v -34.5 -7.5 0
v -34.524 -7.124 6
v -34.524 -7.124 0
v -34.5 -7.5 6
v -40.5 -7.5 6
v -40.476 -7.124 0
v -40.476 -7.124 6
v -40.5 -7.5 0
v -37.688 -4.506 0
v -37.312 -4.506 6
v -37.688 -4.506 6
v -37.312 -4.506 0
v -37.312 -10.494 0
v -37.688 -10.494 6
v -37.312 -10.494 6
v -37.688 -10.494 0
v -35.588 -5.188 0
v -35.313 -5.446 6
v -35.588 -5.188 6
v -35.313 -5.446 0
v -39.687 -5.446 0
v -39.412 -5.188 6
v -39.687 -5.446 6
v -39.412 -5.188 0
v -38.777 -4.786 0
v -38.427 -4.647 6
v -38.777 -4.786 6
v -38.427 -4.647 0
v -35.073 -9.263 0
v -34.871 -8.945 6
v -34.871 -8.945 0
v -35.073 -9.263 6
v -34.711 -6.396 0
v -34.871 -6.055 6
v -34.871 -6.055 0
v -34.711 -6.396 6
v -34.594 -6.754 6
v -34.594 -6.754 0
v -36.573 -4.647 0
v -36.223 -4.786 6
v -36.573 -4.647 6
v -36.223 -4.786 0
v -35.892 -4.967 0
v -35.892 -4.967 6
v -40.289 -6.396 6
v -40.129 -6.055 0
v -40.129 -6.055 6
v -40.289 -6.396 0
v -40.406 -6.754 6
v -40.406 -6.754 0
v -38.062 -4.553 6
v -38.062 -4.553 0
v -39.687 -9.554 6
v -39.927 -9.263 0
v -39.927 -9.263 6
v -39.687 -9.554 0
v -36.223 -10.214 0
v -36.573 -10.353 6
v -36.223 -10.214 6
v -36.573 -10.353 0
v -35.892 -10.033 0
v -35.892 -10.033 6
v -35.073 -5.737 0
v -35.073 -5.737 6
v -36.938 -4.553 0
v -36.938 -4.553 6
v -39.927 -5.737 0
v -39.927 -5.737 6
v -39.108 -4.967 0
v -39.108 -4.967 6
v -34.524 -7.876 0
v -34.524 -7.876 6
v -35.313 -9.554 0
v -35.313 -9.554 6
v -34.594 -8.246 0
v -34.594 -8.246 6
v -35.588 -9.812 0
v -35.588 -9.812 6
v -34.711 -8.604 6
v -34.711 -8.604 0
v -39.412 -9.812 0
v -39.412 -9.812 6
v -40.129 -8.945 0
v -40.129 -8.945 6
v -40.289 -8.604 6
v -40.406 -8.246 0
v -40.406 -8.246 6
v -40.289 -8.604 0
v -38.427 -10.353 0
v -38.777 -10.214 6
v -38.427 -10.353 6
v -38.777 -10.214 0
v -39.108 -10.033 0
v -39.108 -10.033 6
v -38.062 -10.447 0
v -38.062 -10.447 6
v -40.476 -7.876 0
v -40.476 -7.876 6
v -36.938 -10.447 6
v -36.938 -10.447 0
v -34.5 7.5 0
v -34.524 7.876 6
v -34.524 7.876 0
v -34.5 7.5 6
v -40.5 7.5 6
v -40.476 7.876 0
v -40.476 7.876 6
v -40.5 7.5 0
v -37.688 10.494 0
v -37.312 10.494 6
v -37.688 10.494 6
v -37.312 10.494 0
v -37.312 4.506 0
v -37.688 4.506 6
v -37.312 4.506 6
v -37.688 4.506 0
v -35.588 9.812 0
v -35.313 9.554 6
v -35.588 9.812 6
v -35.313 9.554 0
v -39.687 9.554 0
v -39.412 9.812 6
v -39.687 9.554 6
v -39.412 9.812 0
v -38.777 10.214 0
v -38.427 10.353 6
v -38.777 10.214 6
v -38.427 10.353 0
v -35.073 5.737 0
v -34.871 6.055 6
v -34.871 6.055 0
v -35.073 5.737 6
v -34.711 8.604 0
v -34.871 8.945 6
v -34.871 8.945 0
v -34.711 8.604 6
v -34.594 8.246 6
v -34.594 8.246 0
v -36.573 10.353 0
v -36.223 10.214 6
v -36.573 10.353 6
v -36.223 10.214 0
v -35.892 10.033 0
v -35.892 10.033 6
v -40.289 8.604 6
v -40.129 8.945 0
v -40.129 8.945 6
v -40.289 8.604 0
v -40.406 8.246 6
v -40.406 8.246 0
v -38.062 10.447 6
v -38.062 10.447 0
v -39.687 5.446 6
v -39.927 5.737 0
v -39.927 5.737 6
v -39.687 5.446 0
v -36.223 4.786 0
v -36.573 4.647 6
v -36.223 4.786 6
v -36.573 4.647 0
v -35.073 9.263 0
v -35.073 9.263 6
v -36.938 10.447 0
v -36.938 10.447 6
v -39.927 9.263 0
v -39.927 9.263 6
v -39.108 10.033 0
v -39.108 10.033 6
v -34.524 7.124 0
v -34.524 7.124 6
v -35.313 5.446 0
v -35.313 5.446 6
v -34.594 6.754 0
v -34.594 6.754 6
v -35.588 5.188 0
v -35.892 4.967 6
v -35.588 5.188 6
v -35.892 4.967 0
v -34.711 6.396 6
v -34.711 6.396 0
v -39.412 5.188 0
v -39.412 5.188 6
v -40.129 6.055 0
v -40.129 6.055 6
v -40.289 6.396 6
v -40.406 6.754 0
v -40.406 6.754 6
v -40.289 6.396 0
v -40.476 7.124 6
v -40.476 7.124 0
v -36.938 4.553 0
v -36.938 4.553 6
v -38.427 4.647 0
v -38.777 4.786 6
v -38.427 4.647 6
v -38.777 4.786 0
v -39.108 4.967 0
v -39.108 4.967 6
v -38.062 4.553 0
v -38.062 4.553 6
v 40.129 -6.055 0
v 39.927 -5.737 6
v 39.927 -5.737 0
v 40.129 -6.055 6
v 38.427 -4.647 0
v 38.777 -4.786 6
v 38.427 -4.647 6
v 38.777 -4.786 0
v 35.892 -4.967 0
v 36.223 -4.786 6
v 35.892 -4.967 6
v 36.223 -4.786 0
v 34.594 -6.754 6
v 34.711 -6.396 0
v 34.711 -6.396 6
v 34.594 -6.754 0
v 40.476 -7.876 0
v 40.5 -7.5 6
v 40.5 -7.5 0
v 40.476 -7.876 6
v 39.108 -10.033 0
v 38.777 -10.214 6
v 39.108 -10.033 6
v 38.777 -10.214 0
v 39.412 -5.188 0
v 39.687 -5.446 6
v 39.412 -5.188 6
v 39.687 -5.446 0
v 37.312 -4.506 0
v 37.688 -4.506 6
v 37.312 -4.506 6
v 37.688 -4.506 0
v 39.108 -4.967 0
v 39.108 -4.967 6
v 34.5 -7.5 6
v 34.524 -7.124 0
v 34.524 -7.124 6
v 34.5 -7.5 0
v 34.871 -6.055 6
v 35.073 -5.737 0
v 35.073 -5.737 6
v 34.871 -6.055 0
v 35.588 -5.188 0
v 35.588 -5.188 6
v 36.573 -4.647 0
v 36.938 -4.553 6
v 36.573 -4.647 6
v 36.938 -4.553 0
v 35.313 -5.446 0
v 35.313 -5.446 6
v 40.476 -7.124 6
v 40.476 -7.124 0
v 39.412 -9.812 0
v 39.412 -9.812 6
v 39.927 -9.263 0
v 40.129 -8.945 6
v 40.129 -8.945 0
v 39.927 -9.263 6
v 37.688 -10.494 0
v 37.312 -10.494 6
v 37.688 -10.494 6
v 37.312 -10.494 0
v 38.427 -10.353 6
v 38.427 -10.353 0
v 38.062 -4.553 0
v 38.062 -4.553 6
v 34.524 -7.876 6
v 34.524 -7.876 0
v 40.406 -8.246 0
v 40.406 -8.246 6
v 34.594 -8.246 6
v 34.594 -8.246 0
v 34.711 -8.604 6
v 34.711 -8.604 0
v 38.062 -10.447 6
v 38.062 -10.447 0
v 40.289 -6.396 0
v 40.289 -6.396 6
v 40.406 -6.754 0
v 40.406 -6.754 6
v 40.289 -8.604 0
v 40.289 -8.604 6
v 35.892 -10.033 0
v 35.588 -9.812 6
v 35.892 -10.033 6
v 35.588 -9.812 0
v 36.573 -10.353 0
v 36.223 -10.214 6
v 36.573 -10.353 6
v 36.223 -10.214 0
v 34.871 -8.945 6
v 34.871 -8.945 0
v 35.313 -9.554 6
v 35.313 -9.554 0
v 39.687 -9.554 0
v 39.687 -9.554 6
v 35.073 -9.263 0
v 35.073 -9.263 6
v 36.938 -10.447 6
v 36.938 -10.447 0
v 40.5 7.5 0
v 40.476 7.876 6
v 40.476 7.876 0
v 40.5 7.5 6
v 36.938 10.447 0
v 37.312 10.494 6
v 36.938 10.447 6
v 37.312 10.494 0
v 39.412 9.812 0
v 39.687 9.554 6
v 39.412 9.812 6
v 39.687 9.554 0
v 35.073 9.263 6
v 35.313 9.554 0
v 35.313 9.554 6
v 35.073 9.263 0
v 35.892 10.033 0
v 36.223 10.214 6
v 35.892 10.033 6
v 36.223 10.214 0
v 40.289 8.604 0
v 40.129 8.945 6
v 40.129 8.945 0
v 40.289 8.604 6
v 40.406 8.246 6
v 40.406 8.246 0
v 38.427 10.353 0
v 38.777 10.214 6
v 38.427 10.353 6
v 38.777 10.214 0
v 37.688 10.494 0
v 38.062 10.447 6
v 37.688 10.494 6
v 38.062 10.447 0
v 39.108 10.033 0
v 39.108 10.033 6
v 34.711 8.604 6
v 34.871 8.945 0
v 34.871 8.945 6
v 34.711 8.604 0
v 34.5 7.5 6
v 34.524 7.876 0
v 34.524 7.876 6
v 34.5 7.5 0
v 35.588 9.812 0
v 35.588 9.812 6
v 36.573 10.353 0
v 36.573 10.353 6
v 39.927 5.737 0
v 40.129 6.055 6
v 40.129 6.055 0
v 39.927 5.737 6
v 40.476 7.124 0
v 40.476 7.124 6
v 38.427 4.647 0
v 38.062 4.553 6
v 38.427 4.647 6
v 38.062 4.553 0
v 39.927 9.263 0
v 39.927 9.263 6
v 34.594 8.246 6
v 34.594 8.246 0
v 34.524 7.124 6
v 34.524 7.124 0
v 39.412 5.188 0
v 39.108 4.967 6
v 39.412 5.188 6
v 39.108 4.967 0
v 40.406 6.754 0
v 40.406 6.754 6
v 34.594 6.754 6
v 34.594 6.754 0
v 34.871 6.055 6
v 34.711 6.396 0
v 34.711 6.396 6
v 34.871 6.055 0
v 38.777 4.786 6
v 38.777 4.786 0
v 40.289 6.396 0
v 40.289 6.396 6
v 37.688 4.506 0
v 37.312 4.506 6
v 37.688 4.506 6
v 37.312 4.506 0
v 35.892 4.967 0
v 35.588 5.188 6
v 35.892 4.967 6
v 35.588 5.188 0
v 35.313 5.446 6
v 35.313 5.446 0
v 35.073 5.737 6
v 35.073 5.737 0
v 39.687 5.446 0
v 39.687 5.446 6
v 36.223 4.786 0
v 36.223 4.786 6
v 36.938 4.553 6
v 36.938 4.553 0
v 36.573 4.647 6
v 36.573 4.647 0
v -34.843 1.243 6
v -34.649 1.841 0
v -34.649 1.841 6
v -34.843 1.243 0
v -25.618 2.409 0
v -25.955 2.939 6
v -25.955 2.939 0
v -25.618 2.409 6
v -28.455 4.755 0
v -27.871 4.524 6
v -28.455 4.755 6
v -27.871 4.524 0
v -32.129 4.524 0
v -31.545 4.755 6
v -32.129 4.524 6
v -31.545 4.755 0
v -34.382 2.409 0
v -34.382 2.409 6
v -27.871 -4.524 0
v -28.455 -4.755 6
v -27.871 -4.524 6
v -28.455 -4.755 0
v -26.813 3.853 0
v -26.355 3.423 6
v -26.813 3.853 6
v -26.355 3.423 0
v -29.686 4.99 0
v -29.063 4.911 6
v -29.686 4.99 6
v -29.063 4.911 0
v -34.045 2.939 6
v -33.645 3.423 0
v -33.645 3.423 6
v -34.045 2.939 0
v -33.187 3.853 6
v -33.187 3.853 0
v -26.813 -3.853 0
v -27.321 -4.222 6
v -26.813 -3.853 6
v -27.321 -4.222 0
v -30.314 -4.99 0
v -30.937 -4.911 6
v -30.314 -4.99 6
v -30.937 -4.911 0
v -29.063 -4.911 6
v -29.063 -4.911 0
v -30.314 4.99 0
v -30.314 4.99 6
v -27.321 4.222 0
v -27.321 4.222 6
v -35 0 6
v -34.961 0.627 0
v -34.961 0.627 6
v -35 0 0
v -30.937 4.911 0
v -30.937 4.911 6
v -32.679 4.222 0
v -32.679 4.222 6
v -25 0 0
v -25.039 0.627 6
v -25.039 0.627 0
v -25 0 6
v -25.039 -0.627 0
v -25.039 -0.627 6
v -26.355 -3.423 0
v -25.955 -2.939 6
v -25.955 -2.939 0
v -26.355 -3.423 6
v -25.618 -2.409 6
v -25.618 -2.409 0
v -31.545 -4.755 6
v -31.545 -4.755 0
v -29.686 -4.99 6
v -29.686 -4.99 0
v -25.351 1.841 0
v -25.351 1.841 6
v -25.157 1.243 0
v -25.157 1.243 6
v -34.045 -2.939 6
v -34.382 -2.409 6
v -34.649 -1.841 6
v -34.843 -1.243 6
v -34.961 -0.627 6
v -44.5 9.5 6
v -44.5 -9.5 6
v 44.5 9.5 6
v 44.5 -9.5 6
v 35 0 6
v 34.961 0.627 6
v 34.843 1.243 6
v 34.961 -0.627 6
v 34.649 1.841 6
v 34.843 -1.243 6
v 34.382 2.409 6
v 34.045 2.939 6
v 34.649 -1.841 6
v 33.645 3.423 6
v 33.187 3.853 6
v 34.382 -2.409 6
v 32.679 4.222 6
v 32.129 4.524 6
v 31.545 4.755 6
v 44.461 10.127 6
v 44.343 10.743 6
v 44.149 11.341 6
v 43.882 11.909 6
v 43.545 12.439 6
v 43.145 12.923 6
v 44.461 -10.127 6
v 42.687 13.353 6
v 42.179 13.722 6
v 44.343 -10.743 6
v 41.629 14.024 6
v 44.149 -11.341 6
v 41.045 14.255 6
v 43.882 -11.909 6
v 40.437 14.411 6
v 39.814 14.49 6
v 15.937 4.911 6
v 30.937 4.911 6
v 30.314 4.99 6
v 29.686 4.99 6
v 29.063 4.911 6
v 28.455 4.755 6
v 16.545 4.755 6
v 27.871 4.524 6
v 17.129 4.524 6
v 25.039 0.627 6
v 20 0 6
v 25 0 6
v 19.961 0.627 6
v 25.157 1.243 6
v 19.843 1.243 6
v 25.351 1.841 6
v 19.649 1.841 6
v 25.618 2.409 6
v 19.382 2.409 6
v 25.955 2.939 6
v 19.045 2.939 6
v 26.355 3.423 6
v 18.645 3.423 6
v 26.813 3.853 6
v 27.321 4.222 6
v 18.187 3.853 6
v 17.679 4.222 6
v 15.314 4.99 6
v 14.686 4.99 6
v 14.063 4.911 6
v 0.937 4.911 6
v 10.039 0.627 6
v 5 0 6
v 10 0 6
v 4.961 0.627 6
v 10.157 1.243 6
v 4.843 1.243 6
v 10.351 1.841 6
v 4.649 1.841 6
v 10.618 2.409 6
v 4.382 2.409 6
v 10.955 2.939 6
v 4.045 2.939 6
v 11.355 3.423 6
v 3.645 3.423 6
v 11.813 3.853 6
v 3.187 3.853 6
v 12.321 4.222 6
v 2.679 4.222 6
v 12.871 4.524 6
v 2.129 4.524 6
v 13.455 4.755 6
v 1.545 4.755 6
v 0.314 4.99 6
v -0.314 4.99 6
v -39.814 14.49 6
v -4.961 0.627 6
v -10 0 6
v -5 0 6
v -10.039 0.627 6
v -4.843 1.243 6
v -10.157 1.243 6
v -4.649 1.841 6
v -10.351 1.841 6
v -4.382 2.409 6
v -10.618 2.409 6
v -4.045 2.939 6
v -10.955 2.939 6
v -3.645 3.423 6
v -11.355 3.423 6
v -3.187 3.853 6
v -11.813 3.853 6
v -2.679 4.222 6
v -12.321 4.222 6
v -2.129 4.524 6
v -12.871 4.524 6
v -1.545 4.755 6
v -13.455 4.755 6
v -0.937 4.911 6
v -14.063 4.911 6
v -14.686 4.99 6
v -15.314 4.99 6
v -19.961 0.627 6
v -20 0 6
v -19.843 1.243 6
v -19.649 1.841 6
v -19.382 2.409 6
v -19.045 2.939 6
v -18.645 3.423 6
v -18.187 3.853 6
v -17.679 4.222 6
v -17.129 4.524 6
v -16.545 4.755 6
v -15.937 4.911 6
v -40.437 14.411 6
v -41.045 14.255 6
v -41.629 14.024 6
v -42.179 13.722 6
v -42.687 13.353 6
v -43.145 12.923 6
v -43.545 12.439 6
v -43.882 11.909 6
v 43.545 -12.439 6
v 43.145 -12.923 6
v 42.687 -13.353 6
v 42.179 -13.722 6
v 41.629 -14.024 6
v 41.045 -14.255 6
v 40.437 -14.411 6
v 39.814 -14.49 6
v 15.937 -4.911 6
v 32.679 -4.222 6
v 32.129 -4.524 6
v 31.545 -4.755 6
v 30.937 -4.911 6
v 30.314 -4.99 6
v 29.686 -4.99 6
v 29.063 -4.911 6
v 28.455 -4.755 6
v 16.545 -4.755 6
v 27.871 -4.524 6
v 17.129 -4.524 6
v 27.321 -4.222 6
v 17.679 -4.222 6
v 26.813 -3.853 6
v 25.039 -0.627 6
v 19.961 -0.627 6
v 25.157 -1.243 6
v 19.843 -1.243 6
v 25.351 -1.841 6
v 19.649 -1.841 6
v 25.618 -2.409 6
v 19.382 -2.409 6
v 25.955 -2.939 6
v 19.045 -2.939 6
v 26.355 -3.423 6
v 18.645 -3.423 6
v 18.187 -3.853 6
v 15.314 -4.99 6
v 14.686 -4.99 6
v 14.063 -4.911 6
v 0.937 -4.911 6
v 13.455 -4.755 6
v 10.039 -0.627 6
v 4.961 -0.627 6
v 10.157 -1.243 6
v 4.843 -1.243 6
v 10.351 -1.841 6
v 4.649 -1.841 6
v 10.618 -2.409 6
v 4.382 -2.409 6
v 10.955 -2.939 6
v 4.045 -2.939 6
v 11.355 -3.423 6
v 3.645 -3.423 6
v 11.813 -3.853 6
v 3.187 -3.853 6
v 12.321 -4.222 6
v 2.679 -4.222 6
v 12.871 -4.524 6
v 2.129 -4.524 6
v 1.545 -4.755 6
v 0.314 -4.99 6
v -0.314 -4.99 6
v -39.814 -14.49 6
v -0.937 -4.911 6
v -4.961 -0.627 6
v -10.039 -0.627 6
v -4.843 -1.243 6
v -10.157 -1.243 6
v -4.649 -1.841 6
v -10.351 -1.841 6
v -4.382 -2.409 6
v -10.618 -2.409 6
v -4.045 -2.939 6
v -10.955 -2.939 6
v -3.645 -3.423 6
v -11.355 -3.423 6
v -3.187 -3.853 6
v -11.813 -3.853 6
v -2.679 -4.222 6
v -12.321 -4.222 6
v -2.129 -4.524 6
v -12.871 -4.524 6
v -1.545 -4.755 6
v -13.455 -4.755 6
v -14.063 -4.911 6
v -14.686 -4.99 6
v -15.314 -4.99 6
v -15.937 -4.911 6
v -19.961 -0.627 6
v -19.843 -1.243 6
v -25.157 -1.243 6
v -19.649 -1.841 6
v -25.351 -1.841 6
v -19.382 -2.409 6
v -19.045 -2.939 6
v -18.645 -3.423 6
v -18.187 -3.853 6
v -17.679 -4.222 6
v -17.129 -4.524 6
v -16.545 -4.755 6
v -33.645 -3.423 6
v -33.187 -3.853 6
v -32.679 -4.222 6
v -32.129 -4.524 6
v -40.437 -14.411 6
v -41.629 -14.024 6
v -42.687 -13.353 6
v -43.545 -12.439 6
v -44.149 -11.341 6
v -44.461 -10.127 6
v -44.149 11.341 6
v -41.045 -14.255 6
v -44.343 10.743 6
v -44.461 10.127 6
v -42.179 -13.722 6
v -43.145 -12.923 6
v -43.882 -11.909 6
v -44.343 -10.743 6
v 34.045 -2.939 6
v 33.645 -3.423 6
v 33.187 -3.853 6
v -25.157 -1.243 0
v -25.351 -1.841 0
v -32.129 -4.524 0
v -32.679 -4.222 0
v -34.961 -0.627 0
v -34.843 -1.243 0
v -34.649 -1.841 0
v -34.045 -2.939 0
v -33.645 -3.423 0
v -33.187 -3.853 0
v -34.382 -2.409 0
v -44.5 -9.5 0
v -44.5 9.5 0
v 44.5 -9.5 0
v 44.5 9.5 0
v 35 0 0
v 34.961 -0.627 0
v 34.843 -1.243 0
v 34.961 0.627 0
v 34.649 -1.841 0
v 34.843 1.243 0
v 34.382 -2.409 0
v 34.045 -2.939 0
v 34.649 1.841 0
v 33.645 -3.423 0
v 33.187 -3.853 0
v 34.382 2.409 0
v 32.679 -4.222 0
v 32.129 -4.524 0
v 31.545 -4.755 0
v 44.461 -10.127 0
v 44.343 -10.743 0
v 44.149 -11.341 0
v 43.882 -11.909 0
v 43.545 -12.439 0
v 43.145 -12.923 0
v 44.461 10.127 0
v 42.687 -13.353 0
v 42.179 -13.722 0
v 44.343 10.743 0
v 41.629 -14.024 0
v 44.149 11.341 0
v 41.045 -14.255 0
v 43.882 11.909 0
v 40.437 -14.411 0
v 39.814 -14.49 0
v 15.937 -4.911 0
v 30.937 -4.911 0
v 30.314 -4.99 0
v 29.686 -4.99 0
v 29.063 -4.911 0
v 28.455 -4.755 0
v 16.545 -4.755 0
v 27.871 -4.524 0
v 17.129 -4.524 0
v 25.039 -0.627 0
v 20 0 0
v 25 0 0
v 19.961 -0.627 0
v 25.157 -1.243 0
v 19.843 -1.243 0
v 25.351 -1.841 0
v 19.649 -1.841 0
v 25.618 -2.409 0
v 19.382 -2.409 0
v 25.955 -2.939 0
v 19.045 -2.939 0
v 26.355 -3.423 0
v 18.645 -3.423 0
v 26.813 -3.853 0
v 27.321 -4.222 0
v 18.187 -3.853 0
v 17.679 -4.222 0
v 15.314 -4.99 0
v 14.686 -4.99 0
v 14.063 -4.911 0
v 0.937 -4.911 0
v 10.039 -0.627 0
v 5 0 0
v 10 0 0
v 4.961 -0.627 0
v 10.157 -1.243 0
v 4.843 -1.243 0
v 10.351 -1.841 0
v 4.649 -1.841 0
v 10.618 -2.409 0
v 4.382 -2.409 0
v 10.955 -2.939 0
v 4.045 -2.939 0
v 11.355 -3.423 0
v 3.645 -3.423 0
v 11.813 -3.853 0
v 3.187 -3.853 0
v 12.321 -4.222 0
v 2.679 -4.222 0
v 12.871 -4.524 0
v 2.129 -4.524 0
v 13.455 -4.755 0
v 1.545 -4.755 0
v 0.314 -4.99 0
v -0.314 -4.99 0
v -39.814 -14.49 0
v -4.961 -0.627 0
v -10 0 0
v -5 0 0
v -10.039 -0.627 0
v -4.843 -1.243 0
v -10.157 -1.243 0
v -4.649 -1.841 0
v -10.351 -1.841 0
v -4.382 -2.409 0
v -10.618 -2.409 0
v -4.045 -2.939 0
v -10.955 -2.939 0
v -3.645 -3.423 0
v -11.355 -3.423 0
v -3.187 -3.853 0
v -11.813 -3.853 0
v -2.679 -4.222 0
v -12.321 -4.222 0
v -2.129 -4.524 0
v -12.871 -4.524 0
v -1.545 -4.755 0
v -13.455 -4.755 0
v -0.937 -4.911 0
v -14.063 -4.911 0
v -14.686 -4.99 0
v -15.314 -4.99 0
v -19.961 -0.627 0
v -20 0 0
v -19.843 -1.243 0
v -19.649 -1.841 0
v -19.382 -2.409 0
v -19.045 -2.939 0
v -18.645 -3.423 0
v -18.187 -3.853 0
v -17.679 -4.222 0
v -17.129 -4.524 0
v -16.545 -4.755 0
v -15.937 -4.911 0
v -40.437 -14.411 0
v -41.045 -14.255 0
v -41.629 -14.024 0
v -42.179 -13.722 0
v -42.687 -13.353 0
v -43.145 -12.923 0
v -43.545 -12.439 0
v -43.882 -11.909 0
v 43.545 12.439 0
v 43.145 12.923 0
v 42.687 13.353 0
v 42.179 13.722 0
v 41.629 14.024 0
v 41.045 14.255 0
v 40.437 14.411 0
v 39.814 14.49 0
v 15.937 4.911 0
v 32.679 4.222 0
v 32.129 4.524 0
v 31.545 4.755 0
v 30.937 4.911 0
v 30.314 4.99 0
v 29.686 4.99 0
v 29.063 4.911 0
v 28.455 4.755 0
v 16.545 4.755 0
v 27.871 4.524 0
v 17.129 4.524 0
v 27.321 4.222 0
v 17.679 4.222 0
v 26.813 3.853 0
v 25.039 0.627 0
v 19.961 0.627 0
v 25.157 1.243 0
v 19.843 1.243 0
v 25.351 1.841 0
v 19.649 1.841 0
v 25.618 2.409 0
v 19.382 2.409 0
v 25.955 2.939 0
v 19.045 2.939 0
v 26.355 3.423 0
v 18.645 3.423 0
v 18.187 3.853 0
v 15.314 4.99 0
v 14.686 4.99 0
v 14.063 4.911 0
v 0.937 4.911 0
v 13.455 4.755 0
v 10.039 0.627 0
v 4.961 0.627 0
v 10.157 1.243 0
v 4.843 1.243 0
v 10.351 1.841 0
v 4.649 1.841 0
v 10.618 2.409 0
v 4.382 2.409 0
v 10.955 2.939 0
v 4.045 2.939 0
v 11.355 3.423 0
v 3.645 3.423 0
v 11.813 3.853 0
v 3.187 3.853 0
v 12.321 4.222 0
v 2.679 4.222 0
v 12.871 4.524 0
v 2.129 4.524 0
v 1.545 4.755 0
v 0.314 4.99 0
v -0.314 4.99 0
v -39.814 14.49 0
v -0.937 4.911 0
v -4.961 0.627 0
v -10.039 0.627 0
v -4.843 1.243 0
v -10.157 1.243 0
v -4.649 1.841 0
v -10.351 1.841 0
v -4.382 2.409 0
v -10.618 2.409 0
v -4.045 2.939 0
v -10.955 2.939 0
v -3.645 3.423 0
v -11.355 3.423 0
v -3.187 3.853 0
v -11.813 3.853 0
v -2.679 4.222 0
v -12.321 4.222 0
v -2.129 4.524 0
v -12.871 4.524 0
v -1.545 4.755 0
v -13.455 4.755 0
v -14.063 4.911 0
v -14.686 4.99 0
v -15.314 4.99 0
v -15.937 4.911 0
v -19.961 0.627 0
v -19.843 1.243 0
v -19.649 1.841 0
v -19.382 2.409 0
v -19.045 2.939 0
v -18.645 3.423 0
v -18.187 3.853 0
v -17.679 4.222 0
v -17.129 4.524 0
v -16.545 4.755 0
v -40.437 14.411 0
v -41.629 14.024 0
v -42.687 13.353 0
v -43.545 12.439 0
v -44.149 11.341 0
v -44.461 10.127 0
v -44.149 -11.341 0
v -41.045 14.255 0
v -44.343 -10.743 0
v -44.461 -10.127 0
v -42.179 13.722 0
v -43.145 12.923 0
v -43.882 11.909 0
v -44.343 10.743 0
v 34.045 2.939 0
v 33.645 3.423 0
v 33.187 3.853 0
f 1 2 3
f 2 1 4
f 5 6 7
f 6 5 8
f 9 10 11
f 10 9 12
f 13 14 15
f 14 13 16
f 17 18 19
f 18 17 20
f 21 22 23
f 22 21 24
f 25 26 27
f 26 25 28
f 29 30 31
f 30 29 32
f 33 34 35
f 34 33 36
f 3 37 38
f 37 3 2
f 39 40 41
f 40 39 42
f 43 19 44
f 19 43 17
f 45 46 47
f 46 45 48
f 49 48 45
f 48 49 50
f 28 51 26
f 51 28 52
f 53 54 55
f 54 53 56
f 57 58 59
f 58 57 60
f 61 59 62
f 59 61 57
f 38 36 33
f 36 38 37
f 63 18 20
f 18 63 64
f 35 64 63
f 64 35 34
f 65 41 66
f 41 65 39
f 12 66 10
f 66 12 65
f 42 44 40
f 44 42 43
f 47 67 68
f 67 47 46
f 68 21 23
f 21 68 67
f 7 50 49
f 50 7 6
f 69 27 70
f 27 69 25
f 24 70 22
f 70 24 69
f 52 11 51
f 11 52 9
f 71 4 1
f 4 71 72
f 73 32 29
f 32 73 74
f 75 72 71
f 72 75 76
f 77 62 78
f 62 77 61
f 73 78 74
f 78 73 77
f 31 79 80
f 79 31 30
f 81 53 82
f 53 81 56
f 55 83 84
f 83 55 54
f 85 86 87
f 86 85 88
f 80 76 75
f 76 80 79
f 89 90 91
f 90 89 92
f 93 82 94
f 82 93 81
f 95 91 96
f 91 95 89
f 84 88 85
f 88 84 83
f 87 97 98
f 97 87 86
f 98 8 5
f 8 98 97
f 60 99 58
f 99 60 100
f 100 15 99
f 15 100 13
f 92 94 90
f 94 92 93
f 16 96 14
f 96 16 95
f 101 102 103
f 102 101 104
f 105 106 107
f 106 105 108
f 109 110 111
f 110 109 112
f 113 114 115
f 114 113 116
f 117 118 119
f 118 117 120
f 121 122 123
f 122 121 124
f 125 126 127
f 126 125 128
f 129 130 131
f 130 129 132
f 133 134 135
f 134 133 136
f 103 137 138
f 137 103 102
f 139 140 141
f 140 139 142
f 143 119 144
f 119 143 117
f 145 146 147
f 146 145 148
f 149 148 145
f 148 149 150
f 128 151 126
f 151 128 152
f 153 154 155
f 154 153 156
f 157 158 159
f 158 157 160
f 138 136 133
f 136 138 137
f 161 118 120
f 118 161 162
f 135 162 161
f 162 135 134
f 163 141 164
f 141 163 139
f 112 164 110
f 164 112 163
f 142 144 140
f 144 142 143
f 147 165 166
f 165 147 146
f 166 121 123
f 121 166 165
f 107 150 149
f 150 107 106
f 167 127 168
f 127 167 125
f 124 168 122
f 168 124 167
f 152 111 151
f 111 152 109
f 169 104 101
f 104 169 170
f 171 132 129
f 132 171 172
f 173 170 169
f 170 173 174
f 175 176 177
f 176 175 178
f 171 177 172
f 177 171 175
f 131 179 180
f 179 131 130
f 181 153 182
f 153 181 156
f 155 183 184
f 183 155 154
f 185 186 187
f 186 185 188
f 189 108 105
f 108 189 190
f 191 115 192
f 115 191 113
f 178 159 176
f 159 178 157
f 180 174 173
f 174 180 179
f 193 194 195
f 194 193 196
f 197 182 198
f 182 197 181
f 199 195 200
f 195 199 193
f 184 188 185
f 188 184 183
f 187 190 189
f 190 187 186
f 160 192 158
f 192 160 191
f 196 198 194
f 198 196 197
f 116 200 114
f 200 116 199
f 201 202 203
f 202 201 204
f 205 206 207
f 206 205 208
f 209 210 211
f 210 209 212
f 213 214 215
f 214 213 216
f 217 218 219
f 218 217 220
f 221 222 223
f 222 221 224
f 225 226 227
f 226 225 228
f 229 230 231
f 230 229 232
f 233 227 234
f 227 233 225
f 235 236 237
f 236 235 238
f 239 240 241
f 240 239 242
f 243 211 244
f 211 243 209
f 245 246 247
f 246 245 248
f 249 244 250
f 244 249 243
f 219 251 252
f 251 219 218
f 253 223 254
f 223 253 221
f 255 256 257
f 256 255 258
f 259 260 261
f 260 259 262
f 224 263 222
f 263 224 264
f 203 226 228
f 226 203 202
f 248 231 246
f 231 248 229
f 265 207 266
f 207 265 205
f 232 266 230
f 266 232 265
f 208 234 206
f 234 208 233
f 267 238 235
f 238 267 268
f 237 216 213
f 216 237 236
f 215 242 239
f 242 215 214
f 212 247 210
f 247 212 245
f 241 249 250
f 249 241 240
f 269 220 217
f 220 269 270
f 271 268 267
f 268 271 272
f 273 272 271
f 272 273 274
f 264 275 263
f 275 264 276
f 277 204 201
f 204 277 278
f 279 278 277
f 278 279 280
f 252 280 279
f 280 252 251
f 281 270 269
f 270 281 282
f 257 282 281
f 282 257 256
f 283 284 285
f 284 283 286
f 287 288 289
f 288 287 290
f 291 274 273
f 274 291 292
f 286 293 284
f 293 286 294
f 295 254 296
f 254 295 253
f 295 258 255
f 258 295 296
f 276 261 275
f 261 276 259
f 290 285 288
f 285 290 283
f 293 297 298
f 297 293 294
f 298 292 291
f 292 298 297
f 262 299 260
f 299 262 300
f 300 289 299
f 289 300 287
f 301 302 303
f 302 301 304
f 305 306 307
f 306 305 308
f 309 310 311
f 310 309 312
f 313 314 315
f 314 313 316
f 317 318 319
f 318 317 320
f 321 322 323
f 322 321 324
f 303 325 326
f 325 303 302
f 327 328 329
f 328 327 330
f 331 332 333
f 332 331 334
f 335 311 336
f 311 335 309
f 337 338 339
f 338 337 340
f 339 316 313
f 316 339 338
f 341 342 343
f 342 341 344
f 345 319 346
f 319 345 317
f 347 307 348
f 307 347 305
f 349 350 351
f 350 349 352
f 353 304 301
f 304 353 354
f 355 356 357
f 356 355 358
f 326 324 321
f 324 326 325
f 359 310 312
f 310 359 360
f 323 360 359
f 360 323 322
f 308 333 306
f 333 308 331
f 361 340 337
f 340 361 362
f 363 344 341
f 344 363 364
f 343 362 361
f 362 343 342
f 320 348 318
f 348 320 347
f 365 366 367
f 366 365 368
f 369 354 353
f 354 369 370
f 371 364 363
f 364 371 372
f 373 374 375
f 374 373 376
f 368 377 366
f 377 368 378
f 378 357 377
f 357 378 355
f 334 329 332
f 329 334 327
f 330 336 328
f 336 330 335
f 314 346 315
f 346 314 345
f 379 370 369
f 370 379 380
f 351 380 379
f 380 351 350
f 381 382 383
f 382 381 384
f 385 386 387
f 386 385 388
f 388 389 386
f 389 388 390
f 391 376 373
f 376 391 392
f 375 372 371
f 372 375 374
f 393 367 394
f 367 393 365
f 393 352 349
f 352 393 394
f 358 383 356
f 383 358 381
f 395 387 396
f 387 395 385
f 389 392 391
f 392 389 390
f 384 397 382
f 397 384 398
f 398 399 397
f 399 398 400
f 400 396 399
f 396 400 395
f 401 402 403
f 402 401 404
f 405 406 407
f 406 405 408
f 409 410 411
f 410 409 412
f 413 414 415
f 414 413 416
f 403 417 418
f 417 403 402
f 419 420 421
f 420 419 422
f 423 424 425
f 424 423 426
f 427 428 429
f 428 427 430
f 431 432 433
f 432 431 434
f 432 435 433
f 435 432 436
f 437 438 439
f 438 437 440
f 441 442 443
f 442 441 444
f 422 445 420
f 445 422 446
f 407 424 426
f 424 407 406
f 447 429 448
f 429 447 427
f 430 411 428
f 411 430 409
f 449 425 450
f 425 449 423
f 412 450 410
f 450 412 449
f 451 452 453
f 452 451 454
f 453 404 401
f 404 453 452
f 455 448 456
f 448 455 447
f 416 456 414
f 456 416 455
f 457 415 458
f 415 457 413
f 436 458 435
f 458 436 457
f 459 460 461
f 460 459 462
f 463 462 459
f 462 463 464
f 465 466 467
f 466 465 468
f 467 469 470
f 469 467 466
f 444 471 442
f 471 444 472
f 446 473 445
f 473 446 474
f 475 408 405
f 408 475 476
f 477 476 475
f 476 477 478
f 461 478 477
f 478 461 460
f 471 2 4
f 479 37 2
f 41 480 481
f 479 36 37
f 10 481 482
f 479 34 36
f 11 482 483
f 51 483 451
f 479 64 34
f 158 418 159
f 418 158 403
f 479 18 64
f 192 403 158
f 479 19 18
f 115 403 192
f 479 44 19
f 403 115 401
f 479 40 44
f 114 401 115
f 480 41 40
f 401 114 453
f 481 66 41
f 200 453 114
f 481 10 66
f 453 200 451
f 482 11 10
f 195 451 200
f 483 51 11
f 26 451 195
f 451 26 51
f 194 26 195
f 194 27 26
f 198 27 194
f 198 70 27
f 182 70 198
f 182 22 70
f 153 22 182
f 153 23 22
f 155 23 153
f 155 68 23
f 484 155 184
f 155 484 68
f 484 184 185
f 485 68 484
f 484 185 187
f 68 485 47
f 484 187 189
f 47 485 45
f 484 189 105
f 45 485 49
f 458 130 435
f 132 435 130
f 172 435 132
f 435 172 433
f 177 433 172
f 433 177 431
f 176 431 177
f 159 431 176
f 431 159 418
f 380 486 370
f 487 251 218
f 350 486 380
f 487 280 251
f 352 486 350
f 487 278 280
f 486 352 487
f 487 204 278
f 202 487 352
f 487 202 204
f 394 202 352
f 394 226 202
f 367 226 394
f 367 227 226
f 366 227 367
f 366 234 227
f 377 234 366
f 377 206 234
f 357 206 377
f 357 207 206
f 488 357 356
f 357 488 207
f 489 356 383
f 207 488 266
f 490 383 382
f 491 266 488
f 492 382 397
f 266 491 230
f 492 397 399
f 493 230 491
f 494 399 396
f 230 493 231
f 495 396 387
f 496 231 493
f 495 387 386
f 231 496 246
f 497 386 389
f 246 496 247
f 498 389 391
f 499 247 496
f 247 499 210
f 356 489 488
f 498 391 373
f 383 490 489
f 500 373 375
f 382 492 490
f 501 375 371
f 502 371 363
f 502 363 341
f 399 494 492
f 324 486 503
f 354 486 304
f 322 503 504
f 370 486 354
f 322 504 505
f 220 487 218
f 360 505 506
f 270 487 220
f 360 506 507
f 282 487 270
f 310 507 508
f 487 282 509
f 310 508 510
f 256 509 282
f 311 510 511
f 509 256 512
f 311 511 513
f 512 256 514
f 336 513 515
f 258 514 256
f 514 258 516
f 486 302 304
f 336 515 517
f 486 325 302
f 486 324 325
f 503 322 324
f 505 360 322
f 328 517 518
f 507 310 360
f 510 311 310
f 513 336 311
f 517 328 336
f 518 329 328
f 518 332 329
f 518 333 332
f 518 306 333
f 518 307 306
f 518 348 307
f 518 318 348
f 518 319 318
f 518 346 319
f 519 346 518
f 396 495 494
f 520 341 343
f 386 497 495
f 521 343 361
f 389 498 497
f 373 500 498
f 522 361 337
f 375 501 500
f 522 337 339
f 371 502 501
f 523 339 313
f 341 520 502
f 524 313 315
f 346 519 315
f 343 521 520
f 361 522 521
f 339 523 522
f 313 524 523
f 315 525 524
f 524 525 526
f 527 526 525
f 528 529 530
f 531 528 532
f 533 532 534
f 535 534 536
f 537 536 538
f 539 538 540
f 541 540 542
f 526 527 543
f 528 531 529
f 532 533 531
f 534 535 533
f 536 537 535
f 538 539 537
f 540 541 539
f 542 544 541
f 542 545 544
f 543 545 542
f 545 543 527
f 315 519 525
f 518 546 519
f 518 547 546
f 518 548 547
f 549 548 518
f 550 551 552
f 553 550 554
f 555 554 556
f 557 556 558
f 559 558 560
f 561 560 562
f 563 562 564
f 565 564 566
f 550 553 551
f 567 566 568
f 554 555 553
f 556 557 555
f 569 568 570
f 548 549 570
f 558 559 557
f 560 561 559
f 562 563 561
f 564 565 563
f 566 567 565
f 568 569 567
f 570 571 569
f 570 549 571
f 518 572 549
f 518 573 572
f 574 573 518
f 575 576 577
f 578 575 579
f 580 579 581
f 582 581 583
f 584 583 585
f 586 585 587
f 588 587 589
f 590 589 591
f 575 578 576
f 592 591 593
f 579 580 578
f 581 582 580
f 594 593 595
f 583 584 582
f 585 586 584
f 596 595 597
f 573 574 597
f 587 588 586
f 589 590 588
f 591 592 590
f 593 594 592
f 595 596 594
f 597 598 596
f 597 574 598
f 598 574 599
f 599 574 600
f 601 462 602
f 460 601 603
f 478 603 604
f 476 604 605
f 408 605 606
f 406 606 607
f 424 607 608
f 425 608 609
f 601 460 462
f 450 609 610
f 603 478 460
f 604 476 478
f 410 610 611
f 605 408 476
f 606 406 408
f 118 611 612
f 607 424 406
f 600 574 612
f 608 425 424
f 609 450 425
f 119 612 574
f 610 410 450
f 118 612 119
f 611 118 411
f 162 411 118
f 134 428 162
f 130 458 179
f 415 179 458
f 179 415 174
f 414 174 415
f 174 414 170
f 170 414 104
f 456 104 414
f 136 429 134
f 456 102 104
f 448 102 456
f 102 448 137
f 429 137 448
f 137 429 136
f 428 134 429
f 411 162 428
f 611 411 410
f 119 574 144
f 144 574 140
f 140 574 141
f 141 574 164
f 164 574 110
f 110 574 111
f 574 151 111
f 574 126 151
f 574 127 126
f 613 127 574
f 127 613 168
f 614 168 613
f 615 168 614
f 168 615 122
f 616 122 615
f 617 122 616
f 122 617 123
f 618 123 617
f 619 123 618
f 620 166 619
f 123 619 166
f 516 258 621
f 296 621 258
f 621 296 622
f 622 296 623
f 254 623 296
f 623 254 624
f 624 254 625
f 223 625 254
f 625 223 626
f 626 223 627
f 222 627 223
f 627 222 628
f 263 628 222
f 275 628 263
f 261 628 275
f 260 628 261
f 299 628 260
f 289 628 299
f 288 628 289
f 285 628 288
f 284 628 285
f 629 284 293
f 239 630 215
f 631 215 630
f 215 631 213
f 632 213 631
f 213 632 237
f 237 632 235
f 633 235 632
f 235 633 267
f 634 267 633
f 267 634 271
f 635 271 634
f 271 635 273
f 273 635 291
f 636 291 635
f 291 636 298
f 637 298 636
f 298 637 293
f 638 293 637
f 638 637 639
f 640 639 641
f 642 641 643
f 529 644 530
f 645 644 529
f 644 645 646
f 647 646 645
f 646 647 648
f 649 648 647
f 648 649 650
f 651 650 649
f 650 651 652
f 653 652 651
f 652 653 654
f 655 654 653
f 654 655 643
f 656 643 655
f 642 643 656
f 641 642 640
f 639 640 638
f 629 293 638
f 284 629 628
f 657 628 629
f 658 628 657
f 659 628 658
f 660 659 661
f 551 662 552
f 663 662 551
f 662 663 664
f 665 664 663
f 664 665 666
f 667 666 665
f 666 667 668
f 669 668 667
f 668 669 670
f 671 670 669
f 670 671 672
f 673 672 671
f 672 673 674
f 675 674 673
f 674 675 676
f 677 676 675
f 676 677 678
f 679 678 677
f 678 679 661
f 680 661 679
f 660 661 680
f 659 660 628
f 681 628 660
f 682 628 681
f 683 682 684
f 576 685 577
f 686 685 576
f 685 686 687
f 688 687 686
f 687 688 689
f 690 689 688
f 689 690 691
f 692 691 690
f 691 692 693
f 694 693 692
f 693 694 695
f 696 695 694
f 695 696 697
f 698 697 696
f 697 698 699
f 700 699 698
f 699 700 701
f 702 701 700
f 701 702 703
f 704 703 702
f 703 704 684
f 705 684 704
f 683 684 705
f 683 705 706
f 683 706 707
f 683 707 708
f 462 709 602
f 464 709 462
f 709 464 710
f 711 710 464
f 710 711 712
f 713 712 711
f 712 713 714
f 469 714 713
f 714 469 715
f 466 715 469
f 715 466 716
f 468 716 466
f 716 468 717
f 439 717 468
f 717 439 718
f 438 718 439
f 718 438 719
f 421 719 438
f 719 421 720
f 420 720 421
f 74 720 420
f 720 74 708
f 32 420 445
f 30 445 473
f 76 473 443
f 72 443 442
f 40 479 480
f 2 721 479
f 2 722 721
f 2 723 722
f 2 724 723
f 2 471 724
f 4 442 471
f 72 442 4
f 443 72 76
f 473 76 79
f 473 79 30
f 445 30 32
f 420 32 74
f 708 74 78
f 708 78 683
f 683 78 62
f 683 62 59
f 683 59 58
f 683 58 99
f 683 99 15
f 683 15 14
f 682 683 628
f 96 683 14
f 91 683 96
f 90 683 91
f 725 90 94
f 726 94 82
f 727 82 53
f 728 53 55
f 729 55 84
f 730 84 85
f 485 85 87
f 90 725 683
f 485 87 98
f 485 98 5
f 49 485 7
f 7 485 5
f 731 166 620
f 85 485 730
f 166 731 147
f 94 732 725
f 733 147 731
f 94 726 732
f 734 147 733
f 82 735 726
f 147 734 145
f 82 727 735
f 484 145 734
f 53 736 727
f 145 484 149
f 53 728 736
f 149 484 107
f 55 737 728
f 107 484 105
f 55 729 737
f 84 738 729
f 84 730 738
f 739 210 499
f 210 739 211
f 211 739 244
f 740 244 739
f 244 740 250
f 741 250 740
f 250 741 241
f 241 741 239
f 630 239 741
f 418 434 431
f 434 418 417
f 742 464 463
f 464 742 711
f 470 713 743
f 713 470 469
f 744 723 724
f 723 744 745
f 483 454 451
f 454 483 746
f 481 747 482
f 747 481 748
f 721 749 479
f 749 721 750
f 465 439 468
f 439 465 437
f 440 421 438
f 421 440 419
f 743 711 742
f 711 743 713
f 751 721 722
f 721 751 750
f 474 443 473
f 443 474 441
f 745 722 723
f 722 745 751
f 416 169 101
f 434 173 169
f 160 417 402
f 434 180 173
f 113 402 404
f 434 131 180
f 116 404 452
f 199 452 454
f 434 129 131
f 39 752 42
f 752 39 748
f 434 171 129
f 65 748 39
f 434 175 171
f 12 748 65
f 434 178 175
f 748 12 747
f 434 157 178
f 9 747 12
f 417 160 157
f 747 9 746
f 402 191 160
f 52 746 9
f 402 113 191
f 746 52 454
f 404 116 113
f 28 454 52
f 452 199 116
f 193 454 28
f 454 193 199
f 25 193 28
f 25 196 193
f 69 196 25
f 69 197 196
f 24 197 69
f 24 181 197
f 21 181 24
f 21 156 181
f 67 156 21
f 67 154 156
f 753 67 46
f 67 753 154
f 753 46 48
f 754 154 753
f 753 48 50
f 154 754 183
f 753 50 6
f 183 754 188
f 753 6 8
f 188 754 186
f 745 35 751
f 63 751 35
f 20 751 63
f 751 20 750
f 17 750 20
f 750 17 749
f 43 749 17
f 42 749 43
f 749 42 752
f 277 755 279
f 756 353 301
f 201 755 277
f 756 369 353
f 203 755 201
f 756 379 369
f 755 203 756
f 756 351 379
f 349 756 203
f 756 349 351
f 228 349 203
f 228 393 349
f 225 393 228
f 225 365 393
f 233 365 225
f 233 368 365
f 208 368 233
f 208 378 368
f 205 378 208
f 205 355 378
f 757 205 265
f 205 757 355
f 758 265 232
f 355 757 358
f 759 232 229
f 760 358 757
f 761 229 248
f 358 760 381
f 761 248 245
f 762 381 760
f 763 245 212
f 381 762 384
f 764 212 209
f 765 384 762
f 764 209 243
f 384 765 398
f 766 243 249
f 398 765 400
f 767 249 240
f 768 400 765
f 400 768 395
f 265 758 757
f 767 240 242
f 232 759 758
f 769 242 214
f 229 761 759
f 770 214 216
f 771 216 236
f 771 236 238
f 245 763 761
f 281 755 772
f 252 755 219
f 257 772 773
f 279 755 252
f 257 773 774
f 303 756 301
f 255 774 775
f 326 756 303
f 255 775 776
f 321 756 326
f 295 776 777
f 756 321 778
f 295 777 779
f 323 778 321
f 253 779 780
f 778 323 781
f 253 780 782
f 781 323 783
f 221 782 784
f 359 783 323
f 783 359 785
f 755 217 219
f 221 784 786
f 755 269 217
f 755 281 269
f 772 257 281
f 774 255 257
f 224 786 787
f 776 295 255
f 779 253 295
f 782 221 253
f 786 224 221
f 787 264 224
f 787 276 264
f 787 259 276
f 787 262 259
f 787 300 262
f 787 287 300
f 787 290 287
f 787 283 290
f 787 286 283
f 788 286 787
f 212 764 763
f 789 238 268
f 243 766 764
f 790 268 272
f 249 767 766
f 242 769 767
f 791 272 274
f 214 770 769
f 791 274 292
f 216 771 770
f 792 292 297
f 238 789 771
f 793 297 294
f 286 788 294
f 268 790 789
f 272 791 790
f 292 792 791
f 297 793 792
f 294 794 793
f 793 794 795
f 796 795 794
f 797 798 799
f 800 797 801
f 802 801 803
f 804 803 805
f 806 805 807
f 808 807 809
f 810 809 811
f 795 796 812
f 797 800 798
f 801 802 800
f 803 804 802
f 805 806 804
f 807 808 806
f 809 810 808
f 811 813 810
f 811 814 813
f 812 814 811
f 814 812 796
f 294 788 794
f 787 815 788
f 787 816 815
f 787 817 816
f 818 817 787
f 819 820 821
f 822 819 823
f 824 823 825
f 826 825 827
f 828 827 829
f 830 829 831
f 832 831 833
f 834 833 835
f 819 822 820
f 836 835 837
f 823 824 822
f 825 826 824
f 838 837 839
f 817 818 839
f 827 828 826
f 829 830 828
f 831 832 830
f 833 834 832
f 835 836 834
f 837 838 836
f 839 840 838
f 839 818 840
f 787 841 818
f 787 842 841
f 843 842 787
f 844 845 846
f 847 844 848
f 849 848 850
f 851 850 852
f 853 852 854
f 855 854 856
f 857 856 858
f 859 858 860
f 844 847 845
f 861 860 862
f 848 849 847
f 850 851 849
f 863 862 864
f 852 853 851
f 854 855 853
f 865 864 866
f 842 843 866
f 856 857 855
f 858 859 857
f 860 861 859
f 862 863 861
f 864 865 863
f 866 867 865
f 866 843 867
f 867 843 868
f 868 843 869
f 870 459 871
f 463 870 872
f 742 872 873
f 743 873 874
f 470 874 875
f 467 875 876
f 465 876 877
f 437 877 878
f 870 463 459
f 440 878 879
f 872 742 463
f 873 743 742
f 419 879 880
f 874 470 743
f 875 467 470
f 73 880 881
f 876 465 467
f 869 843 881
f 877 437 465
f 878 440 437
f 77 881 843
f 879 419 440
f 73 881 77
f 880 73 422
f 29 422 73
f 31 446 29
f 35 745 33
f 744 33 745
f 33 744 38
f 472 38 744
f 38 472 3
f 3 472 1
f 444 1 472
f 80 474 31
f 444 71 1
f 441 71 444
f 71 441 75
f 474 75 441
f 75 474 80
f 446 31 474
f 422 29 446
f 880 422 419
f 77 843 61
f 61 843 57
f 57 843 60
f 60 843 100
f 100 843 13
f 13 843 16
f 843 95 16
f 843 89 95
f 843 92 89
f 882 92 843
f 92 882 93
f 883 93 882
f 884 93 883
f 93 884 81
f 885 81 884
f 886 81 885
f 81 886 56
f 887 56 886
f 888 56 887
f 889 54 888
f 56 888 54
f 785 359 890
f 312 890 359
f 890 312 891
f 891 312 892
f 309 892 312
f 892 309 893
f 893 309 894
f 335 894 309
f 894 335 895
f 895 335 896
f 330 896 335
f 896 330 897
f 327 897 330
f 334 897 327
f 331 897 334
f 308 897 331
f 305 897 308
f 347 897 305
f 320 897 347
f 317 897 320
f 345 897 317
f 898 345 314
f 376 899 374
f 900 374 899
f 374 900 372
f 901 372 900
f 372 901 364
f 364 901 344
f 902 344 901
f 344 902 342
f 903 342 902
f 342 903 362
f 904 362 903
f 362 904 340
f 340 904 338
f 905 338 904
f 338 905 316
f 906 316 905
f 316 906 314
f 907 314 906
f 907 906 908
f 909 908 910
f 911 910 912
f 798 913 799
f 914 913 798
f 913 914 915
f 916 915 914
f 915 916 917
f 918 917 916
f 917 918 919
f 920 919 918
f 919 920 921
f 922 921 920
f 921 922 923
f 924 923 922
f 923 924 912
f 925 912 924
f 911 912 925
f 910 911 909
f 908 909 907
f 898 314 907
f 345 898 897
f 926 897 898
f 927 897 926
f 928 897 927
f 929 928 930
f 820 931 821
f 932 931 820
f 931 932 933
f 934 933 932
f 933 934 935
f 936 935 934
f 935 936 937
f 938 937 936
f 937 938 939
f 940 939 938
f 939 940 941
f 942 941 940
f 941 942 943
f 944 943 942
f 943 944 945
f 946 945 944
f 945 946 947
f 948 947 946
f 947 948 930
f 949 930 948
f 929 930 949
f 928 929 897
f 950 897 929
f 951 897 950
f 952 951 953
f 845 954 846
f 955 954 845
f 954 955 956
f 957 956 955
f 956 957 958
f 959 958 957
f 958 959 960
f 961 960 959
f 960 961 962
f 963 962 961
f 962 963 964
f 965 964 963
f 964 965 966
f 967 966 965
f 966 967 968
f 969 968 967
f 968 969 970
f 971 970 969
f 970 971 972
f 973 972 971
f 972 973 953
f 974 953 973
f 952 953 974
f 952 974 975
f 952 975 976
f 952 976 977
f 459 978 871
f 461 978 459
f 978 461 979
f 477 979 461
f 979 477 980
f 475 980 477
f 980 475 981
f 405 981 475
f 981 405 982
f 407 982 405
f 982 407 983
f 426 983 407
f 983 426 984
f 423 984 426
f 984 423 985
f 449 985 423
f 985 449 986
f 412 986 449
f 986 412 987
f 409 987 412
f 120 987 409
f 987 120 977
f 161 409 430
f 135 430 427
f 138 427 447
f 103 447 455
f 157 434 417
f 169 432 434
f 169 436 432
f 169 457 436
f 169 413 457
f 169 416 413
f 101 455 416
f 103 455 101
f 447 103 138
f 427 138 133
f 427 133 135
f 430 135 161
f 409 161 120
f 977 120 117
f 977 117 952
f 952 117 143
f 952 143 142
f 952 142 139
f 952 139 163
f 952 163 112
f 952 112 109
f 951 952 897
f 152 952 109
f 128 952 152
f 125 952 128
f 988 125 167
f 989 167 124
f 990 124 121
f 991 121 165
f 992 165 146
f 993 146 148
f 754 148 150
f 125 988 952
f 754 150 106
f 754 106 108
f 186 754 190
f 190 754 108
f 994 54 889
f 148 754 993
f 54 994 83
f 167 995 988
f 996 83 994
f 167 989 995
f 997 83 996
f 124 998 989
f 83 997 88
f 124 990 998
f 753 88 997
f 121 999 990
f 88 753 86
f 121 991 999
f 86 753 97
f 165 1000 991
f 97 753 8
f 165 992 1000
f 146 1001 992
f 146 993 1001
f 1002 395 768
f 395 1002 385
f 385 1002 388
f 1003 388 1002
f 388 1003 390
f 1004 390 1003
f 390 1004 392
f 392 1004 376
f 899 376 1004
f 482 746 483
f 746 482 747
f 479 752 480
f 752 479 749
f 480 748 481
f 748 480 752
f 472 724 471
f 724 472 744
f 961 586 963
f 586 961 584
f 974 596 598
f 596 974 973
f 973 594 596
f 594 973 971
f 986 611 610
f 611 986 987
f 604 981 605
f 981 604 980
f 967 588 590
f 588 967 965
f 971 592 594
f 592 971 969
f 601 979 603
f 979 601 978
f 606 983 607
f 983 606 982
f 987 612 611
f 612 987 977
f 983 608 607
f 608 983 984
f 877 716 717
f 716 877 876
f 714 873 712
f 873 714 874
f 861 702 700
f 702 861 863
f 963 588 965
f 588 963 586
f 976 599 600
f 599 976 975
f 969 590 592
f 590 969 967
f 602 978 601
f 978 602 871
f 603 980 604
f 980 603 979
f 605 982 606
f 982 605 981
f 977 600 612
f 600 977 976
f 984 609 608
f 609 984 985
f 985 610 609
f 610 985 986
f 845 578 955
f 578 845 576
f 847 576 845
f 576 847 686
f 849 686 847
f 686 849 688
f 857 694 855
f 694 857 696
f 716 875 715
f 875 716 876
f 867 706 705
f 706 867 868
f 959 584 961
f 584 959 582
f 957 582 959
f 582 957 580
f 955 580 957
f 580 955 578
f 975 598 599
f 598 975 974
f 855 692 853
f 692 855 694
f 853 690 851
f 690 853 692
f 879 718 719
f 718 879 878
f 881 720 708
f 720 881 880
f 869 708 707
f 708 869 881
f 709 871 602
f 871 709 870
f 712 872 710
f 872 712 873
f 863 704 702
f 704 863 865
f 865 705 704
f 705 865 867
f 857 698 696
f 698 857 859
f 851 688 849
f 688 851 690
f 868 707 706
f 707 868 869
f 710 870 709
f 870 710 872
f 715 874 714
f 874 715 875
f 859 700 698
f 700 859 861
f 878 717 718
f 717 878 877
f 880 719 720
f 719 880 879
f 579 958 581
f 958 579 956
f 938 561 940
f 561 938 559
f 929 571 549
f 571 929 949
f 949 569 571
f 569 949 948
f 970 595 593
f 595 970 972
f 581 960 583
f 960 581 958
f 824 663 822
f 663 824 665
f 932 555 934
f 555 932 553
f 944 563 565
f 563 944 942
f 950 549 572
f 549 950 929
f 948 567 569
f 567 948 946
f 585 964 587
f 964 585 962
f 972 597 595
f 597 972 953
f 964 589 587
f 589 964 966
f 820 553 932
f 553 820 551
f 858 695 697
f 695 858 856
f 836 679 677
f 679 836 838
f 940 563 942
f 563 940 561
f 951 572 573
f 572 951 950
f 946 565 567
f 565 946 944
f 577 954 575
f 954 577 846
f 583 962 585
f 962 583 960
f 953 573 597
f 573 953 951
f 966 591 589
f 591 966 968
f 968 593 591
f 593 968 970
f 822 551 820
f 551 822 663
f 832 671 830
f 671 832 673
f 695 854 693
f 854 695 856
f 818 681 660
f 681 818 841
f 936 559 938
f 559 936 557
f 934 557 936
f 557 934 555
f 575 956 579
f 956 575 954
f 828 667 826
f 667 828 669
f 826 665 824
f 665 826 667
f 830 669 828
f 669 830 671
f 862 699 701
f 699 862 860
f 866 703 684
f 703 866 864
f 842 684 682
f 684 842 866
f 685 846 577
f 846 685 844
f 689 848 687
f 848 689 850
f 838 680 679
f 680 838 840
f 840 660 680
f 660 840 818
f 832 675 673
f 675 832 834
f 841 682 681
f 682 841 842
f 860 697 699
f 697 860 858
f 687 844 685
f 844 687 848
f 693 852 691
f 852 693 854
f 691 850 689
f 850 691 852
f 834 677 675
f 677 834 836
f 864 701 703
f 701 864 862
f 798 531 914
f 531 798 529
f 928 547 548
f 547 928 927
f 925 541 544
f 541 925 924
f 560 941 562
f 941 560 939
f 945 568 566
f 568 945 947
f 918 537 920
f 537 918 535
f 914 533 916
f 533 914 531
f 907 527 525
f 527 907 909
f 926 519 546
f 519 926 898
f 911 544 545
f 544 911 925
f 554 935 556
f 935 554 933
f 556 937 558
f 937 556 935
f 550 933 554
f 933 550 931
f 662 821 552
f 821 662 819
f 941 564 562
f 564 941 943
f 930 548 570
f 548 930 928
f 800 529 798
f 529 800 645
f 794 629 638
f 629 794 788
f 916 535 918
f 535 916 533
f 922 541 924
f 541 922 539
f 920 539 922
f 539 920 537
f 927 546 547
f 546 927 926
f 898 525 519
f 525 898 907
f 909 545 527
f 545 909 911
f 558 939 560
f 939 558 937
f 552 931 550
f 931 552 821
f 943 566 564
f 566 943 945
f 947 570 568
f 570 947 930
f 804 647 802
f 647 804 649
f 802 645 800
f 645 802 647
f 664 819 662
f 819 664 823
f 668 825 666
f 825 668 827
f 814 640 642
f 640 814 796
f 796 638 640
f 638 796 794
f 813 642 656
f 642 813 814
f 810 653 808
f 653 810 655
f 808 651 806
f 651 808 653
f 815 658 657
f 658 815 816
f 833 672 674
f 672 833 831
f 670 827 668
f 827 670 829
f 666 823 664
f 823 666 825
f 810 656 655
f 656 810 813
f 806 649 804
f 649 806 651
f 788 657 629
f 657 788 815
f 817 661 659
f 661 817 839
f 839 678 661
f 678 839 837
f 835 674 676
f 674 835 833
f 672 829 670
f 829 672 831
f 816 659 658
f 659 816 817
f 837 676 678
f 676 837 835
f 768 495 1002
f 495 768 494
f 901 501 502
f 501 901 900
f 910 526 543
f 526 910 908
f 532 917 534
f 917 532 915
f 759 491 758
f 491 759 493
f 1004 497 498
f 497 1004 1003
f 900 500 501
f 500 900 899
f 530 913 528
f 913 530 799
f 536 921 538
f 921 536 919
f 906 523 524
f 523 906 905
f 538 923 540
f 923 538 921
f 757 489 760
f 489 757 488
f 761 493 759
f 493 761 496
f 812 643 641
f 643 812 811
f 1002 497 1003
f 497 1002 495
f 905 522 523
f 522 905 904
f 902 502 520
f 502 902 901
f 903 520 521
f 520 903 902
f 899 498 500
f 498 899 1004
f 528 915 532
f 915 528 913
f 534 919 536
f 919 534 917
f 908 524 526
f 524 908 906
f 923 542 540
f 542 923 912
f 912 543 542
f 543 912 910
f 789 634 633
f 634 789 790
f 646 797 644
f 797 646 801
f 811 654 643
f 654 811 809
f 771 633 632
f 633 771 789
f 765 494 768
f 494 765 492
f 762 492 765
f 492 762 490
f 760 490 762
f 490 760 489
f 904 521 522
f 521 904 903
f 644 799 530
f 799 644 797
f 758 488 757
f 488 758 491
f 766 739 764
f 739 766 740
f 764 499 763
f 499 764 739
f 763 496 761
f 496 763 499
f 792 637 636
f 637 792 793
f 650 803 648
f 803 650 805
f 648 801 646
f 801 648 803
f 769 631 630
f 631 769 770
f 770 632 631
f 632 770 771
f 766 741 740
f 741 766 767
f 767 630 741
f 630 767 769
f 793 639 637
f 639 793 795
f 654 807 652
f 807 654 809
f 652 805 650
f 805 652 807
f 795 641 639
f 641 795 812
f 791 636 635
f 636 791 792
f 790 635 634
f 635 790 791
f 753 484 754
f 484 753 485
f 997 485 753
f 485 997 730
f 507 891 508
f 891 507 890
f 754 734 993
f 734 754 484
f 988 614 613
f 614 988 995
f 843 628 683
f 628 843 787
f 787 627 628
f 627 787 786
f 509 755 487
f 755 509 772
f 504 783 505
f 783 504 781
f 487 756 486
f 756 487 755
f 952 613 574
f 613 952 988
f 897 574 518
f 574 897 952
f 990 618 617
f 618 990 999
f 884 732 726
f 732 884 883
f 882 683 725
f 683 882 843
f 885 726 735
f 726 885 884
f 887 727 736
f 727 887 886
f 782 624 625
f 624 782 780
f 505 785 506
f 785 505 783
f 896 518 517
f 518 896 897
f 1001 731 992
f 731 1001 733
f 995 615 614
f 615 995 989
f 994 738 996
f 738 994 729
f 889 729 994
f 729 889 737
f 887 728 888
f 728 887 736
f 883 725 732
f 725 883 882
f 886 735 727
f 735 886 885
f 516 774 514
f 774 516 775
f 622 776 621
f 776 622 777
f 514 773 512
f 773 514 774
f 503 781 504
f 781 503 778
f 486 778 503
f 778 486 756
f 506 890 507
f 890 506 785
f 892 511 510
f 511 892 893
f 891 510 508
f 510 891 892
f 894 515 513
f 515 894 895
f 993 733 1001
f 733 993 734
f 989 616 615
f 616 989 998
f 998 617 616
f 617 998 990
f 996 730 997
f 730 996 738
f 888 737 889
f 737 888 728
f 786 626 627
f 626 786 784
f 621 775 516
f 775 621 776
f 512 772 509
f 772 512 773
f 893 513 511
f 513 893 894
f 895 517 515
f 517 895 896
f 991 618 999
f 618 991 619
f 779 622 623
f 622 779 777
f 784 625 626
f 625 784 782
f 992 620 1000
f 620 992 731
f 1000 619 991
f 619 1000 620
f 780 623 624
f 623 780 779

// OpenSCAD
$fn = 50;


difference() {
	union() {
		hull() {
			translate(v = [-39.5000000000, 9.5000000000, 0]) {
				cylinder(h = 6, r = 5);
			}
			translate(v = [39.5000000000, 9.5000000000, 0]) {
				cylinder(h = 6, r = 5);
			}
			translate(v = [-39.5000000000, -9.5000000000, 0]) {
				cylinder(h = 6, r = 5);
			}
			translate(v = [39.5000000000, -9.5000000000, 0]) {
				cylinder(h = 6, r = 5);
			}
		}
	}
	union() {
		#translate(v = [-37.5000000000, -7.5000000000, -100.0000000000]) {
			cylinder(h = 200, r = 3.0000000000);
		}
		#translate(v = [-37.5000000000, 7.5000000000, -100.0000000000]) {
			cylinder(h = 200, r = 3.0000000000);
		}
		#translate(v = [37.5000000000, -7.5000000000, -100.0000000000]) {
			cylinder(h = 200, r = 3.0000000000);
		}
		#translate(v = [37.5000000000, 7.5000000000, -100.0000000000]) {
			cylinder(h = 200, r = 3.0000000000);
		}
		#translate(v = [-30.0000000000, 0, 0]) {
			cylinder(h = 6, r = 5.0000000000);
		}
		#translate(v = [-15.0000000000, 0, 0]) {
			cylinder(h = 6, r = 5.0000000000);
		}
		#cylinder(h = 6, r = 5.0000000000);
		#translate(v = [15.0000000000, 0, 0]) {
			cylinder(h = 6, r = 5.0000000000);
		}
		#translate(v = [30.0000000000, 0, 0]) {
			cylinder(h = 6, r = 5.0000000000);
		}
	}
}
